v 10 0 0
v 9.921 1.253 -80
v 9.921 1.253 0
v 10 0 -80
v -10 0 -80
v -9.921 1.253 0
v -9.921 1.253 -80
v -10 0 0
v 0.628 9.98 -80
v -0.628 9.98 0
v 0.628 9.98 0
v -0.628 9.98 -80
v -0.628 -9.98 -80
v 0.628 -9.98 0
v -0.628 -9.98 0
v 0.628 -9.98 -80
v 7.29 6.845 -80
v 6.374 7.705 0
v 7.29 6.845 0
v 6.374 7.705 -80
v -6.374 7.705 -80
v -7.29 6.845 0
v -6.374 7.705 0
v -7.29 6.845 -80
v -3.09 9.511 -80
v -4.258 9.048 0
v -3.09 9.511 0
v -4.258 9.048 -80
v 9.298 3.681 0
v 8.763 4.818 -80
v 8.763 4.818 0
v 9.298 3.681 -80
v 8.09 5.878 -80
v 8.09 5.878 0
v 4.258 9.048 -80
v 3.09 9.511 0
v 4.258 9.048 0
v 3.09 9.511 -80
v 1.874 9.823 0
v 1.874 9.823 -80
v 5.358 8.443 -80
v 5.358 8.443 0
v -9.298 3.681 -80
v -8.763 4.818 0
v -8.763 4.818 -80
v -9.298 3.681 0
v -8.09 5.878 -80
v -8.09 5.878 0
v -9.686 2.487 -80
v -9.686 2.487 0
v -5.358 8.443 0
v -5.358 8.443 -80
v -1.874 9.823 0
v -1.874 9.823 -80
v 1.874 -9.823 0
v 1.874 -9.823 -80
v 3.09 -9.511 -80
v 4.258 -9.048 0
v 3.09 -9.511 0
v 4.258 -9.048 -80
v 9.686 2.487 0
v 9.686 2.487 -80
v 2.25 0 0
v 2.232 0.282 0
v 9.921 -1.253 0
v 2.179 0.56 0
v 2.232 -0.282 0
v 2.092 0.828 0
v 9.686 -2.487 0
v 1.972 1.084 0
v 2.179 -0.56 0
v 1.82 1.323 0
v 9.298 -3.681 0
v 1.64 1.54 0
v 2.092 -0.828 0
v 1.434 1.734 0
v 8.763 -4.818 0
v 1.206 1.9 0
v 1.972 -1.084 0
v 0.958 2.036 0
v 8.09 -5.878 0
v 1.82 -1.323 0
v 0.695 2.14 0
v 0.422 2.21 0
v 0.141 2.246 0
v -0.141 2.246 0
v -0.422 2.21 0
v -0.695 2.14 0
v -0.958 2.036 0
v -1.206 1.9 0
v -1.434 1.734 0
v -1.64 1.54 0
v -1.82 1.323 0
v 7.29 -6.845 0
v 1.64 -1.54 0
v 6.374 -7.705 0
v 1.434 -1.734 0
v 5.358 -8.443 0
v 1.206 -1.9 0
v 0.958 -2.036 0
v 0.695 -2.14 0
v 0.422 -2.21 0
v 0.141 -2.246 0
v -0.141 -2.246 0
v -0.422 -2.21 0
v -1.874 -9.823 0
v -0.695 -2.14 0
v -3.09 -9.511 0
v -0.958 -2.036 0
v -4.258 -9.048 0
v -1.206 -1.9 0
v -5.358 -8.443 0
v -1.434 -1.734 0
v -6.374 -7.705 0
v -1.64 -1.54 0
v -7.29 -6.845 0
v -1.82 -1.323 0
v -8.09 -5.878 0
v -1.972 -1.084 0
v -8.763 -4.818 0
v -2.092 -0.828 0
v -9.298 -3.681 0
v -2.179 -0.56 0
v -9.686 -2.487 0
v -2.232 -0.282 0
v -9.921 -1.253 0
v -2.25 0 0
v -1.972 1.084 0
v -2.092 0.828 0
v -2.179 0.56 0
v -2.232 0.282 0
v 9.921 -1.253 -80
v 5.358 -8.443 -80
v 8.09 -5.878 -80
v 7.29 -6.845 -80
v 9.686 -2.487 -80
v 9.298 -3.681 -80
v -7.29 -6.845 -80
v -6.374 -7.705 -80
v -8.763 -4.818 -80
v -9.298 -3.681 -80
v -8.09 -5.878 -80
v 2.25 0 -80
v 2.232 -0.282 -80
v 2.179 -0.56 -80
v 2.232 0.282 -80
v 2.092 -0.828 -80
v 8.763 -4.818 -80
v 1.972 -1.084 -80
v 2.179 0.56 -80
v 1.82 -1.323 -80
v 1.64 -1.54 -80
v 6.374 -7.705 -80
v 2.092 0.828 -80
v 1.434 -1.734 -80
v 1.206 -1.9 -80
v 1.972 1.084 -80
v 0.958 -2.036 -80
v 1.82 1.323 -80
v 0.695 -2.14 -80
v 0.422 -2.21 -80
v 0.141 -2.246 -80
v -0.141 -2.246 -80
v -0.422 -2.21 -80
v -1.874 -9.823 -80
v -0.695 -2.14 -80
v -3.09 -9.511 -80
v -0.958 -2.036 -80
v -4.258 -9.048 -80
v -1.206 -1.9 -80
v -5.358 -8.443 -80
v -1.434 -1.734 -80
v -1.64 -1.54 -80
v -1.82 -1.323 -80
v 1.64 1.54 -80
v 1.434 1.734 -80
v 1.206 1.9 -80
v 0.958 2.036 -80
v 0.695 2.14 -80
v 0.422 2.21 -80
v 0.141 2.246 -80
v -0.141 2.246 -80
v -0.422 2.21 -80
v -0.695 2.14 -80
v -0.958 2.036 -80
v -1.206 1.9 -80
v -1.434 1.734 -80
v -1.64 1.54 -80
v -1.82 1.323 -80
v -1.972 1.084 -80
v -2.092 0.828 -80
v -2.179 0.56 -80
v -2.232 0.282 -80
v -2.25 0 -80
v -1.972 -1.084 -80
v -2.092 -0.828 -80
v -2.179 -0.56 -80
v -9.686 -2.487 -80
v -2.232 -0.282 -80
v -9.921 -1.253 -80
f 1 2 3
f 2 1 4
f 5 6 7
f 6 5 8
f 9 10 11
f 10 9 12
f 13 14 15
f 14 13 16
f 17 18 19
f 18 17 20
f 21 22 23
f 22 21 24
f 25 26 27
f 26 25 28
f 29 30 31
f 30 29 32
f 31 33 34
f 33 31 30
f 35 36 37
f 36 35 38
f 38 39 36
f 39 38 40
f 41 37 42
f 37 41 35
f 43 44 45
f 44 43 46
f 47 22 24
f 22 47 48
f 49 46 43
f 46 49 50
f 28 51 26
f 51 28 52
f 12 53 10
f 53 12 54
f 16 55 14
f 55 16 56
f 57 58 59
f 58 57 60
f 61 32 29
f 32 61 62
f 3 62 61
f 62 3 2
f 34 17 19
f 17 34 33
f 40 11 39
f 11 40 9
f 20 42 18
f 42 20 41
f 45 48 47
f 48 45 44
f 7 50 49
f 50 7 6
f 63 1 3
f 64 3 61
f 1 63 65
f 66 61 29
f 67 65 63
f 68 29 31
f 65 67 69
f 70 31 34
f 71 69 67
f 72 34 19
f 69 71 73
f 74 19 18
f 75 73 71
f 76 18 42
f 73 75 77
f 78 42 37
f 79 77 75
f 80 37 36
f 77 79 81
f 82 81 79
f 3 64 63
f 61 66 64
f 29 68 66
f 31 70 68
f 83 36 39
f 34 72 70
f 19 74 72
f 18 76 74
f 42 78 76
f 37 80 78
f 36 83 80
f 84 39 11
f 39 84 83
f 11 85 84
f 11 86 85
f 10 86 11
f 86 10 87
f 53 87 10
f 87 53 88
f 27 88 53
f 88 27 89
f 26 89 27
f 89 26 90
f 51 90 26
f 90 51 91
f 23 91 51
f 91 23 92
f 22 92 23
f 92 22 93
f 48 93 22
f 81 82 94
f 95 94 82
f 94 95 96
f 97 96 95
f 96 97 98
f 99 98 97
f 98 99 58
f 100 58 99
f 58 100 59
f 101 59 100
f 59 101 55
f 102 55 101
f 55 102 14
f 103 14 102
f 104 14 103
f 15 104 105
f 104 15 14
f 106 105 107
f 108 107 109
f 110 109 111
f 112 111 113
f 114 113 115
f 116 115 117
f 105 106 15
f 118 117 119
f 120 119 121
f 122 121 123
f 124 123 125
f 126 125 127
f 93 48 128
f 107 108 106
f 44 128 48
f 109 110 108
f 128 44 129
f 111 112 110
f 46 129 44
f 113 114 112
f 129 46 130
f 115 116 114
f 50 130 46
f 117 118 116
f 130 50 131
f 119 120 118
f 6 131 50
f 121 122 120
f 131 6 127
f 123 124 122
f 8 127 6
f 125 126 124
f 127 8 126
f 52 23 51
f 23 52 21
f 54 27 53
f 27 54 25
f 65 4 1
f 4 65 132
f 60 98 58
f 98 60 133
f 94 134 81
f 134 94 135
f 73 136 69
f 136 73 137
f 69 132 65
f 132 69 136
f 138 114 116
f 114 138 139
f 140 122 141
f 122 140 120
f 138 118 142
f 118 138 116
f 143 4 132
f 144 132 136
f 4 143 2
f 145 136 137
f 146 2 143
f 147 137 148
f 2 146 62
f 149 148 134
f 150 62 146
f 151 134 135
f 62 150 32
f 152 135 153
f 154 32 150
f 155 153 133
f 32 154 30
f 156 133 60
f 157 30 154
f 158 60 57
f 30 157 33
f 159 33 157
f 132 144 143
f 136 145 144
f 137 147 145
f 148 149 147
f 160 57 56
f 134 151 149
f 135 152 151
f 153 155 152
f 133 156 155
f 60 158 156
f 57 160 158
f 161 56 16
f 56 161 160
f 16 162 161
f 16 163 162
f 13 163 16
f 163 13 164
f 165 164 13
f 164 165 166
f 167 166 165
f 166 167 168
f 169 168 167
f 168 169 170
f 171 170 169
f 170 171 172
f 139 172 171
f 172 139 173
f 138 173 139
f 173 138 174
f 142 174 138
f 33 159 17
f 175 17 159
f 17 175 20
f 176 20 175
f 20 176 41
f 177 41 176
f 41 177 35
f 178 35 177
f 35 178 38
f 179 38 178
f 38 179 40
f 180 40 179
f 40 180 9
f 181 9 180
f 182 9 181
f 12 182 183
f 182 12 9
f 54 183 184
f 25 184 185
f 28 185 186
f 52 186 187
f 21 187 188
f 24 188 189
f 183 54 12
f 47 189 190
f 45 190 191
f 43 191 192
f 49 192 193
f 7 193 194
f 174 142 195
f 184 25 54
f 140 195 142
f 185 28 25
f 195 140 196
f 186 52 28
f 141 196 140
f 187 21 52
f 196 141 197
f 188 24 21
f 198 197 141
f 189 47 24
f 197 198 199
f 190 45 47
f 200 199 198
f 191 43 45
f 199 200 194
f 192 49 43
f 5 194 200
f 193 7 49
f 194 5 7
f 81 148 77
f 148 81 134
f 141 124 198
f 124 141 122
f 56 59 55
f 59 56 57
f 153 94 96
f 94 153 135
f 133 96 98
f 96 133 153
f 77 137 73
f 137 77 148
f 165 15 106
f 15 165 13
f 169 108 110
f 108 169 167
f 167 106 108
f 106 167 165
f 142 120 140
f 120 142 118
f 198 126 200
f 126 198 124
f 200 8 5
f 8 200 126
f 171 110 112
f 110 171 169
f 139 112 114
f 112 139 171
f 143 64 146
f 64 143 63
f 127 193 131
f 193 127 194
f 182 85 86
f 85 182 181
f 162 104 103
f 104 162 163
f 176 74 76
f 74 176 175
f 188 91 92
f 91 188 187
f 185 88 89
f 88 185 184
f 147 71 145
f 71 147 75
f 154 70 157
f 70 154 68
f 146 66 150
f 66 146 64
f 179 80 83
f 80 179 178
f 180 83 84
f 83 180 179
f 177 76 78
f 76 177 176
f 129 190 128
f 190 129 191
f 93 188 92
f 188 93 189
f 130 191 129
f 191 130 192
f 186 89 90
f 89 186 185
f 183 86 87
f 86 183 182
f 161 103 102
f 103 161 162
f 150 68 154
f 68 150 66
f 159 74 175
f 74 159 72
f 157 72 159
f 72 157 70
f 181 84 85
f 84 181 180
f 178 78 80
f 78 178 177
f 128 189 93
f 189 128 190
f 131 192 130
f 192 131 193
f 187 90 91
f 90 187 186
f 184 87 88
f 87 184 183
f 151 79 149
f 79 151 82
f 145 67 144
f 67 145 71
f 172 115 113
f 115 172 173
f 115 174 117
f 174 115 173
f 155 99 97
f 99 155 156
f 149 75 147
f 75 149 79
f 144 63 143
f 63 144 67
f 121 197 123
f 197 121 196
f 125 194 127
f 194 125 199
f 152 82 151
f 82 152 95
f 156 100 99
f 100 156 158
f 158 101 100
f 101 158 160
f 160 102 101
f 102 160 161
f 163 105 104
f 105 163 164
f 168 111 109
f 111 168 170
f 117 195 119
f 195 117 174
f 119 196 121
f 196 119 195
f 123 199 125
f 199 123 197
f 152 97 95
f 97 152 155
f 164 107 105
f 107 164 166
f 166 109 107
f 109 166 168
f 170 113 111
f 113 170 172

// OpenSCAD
$fn = 50;


difference() {
	union() {
		translate(v = [0, 0, -80.0000000000]) {
			cylinder(h = 80, r = 10.0000000000);
		}
	}
	union() {
		#translate(v = [0, 0, -80]) {
			cylinder(h = 80, r = 2.2500000000);
		}
	}
}
